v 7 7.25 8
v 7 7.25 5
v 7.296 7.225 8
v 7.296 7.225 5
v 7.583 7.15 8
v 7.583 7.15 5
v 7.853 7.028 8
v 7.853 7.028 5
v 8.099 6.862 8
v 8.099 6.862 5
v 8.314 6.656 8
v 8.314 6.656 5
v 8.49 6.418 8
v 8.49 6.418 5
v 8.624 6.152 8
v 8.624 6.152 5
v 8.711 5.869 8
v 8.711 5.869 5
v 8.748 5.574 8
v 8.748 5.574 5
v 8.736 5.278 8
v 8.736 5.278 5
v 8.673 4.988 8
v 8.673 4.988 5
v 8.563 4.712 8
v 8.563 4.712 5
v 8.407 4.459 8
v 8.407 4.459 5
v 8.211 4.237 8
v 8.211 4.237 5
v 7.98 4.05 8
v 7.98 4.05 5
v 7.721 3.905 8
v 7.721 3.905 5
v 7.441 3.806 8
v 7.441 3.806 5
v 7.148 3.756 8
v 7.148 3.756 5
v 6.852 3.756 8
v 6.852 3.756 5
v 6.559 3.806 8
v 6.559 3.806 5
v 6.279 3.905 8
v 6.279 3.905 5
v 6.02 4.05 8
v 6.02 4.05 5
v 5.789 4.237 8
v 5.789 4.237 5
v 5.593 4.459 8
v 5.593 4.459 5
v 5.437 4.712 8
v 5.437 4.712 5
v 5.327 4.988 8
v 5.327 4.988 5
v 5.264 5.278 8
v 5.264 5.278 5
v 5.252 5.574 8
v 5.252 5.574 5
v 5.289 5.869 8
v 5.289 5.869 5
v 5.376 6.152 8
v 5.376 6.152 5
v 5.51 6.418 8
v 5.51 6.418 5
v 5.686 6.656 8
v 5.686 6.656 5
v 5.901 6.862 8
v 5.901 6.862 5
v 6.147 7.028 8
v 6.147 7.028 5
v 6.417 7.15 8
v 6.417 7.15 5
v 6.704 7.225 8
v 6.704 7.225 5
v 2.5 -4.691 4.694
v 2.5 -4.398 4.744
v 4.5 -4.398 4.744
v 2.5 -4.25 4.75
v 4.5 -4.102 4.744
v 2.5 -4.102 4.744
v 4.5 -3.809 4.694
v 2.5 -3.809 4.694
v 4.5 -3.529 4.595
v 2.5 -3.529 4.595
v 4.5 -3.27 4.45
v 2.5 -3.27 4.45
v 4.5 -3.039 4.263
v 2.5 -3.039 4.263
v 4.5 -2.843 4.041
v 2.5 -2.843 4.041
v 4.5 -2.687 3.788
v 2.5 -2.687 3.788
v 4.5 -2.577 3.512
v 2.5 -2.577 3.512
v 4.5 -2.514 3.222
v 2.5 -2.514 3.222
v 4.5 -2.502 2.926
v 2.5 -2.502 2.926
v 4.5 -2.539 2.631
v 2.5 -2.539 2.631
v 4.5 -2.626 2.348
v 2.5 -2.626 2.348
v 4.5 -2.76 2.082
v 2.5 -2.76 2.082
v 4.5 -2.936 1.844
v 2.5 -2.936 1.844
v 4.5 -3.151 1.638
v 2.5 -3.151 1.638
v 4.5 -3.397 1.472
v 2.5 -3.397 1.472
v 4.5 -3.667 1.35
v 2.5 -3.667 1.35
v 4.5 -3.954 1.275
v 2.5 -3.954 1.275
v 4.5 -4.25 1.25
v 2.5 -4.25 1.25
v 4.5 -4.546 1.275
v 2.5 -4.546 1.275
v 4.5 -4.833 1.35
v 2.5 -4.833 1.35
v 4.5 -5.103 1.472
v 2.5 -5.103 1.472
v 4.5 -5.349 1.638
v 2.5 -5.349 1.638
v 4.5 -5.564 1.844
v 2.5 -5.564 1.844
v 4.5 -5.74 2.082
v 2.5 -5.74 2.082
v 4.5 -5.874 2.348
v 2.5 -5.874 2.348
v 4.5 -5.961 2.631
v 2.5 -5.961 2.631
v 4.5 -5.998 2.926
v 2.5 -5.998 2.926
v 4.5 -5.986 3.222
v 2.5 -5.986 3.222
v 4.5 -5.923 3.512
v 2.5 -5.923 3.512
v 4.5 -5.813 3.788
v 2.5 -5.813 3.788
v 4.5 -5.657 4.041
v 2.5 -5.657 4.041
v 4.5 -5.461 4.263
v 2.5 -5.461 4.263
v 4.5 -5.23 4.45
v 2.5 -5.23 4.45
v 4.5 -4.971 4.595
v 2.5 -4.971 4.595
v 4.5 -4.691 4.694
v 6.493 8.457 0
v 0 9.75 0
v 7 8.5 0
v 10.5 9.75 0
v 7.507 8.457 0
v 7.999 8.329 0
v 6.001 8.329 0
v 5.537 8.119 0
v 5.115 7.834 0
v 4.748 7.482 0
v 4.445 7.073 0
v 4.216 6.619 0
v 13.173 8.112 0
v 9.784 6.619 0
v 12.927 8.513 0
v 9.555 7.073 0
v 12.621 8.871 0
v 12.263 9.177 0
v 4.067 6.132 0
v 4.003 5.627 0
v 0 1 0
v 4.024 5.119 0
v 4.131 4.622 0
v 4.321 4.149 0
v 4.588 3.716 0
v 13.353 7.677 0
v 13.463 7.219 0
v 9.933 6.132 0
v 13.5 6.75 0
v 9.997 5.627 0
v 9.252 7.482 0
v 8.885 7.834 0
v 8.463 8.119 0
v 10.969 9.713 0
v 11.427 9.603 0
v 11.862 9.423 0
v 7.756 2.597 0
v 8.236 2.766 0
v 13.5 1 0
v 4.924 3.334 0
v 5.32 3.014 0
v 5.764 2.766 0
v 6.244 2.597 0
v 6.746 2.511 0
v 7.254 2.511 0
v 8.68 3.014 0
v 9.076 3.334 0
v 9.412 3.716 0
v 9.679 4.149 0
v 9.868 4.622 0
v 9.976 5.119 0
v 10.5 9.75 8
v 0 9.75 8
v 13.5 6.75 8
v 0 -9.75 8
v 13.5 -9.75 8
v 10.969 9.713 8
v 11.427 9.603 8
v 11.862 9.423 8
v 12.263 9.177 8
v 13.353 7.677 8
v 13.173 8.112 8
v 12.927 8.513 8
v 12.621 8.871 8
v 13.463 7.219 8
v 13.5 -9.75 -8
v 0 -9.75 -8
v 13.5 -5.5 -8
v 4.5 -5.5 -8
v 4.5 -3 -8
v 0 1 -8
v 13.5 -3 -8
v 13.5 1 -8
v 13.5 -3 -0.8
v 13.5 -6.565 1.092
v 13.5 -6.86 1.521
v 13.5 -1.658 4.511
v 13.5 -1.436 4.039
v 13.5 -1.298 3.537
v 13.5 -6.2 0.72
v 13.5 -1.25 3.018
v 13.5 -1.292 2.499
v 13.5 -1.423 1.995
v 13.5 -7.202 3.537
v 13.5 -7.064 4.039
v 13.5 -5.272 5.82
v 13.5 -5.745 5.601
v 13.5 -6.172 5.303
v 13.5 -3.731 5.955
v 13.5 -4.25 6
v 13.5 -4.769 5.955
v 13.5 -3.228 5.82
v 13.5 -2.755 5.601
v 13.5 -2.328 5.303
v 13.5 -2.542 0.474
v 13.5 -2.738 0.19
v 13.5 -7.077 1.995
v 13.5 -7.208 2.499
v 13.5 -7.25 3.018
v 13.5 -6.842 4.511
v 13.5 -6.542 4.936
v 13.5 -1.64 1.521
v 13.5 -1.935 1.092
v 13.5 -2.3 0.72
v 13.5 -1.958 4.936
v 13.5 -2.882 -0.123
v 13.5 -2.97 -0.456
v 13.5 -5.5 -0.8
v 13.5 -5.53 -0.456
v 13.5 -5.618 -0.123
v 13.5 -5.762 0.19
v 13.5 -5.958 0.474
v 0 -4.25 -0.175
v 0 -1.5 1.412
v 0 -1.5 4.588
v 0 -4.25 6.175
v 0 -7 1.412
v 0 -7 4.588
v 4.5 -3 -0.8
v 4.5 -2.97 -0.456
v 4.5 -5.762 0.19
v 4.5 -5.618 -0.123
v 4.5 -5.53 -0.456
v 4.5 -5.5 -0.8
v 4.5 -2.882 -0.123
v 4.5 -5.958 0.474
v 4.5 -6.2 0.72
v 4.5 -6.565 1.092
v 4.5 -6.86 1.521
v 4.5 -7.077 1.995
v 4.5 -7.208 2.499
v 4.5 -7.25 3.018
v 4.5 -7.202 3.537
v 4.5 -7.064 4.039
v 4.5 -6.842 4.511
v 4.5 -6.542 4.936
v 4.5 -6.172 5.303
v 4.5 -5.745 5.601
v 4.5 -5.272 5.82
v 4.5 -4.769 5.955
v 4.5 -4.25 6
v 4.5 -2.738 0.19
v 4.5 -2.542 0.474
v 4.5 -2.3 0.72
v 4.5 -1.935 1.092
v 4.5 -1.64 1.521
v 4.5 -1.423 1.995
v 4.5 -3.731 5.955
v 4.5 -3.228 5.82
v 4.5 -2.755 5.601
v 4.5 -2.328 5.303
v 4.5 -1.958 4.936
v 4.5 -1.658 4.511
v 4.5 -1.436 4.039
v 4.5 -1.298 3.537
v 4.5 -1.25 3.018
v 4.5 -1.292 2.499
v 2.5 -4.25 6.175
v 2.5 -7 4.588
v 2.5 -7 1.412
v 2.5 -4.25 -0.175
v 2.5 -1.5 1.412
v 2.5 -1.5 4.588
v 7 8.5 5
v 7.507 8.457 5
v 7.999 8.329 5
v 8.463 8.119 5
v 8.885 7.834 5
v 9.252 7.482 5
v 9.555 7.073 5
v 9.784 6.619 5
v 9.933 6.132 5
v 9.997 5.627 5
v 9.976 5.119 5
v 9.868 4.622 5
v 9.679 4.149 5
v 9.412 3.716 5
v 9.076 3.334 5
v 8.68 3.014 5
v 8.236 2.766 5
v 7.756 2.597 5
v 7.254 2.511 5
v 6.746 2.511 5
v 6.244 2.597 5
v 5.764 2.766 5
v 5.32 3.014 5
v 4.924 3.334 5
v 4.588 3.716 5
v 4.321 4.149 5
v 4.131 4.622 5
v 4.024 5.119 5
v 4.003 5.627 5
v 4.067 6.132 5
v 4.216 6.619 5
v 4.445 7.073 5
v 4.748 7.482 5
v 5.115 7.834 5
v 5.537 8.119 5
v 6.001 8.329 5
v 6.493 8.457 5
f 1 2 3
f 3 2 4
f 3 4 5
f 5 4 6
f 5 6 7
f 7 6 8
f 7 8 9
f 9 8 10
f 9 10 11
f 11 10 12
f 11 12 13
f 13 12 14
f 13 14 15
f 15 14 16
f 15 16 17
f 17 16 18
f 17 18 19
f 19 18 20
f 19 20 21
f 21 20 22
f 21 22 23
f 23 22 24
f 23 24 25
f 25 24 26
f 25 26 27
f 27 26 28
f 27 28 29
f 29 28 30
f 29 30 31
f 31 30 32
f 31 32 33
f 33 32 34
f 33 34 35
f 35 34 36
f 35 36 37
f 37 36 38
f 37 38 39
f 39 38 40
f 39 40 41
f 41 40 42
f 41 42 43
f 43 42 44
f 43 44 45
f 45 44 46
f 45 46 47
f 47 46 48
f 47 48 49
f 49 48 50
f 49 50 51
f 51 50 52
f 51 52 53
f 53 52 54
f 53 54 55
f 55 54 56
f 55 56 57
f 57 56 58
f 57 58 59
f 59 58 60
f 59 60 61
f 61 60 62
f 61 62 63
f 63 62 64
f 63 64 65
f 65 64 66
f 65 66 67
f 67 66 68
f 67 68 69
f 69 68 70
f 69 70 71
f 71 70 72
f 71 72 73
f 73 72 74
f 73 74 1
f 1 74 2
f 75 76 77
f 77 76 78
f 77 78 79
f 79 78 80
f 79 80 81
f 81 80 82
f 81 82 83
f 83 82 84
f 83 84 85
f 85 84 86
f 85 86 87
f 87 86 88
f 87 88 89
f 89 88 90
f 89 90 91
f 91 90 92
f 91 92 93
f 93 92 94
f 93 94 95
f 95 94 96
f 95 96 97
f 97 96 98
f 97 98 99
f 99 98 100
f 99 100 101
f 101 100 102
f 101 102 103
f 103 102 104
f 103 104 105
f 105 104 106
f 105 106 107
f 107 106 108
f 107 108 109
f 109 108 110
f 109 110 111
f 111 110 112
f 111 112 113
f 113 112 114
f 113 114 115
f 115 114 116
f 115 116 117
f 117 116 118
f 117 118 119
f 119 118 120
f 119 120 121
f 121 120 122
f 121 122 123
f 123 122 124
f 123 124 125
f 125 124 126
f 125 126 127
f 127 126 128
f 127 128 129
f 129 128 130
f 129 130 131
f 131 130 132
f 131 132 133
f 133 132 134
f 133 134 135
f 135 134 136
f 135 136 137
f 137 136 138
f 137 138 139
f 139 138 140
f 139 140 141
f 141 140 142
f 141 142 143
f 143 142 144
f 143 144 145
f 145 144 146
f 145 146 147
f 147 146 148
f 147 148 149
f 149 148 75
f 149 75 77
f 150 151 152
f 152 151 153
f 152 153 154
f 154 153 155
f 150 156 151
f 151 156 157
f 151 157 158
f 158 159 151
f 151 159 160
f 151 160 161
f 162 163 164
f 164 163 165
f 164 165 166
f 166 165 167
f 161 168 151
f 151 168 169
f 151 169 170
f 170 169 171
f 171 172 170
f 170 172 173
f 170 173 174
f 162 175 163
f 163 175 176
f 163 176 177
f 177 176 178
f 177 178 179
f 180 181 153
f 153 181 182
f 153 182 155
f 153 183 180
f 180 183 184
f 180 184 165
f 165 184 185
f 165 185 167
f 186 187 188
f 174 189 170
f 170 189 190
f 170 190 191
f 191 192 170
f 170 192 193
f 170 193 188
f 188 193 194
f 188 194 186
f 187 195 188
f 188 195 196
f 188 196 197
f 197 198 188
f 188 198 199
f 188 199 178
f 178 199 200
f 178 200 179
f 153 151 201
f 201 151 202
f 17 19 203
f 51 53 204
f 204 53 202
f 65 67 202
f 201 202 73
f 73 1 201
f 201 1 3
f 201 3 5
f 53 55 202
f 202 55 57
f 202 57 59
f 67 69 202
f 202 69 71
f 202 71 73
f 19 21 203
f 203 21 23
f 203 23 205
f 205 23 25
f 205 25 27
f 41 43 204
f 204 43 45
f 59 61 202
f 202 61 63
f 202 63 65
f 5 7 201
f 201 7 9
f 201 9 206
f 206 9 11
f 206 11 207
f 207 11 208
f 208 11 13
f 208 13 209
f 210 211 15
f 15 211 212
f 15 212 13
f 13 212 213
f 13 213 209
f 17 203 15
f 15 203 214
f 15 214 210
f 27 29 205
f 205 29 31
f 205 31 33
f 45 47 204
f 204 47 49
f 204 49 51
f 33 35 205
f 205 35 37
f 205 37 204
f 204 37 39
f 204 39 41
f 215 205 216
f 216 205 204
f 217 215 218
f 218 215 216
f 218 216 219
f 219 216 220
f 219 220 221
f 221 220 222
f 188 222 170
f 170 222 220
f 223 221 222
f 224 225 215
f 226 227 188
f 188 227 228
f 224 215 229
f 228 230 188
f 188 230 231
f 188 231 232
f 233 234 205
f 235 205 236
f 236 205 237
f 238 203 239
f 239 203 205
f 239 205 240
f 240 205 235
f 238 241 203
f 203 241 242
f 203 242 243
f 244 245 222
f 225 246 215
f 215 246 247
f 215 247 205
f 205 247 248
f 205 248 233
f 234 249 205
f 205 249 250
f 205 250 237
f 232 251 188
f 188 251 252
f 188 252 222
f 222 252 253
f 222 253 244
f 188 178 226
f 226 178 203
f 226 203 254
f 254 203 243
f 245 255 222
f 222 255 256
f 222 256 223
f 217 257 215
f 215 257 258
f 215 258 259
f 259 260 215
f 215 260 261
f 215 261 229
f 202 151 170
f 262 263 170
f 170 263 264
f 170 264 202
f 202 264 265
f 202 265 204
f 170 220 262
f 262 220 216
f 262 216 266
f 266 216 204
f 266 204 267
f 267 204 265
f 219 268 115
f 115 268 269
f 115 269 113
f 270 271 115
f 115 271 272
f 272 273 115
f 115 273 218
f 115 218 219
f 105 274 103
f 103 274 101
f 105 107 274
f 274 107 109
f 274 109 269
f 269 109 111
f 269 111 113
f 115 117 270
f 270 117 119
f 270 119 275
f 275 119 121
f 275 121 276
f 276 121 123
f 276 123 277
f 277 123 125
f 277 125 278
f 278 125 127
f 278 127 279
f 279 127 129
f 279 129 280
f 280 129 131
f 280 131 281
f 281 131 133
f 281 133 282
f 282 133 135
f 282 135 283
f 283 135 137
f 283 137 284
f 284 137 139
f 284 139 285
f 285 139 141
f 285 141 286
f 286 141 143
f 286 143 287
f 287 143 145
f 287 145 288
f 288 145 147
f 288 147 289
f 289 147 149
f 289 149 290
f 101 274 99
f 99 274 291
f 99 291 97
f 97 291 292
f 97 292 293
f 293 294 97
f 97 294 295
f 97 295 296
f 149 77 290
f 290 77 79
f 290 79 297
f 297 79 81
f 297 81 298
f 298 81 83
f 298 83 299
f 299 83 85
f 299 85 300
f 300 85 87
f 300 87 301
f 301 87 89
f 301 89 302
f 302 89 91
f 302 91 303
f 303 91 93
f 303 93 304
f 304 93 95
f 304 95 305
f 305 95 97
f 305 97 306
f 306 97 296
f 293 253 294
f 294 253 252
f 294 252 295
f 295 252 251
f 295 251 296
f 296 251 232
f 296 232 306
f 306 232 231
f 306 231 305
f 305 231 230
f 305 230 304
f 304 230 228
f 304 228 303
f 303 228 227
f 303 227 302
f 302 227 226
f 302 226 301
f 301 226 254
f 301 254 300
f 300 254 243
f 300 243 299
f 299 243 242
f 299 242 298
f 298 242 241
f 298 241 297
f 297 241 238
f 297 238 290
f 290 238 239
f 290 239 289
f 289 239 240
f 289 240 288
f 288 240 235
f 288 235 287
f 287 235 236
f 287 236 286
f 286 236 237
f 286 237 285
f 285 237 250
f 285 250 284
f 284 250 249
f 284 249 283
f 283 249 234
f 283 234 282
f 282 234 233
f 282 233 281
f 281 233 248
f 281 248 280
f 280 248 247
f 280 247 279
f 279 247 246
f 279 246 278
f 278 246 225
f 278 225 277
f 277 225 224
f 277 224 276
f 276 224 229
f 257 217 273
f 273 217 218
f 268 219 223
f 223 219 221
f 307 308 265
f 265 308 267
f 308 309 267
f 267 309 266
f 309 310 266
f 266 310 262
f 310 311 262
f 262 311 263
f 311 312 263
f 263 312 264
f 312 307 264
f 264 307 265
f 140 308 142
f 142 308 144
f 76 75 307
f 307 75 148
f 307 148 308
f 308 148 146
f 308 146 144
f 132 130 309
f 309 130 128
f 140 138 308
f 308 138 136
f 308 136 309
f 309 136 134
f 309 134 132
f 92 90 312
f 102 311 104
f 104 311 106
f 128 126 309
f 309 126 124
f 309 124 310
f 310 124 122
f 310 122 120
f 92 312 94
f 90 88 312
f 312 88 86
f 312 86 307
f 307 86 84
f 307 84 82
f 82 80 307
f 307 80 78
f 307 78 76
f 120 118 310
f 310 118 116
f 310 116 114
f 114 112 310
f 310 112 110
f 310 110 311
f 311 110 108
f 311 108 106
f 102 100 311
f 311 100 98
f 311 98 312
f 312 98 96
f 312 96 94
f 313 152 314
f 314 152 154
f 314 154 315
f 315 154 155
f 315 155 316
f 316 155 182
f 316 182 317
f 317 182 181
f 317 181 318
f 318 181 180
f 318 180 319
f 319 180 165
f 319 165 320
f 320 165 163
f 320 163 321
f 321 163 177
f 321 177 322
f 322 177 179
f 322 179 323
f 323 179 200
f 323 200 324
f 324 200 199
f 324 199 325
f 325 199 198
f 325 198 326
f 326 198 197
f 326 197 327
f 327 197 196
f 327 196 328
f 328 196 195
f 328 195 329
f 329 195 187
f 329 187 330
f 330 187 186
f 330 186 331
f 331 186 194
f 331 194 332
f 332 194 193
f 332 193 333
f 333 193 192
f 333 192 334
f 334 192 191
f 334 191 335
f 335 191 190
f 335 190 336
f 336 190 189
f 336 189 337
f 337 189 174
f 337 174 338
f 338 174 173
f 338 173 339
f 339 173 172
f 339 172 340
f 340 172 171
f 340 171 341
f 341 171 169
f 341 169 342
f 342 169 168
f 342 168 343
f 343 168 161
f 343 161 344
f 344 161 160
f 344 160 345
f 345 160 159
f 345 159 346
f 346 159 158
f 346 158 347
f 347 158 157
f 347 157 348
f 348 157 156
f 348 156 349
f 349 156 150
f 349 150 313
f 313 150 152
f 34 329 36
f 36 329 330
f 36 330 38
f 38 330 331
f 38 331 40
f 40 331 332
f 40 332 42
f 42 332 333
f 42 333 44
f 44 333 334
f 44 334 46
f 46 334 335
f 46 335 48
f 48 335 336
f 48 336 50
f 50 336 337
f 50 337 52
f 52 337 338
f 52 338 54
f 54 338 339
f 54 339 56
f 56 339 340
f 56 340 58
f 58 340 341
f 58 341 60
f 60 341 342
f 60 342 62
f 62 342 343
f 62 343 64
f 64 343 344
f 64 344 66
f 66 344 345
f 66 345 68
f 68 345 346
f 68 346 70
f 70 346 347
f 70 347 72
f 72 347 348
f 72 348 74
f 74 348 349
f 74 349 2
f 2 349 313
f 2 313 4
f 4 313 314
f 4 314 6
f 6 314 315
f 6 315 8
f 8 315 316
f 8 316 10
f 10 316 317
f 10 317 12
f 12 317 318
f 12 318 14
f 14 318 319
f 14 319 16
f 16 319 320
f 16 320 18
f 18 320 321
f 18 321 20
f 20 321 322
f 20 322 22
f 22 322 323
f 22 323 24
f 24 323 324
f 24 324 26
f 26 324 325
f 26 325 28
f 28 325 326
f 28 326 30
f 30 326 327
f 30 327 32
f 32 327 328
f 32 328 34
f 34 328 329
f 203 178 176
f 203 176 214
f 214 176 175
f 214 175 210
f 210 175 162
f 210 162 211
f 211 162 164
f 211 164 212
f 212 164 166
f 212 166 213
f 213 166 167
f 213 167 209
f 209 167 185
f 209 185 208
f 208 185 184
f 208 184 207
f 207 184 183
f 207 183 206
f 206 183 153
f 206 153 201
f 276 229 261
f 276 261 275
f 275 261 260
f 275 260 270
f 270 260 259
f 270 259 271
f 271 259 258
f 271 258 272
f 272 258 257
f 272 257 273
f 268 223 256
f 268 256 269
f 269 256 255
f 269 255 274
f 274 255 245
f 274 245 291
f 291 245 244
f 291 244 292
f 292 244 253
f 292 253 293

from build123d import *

# Parameters (mm, degrees)
BOSS_EXTRUDE1_DEPTH     = 13.5
SKETCH2_R               = 3
SKETCH2_W               = 11
SKETCH2_H               = 2.5
CUT_EXTRUDE1_DEPTH      = 9
CUT_EXTRUDE2_DEPTH      = 16.493950432
CUT_EXTRUDE2_DEPTH_BACK = 16.493950432
SKETCH3_R               = 1.75
CUT_EXTRUDE4_START      = -2.5
SKETCH4_R               = 1.75
CUT_EXTRUDE4_DEPTH      = 2.5
SKETCH5_R               = 1.75
CUT_EXTRUDE5_DEPTH      = 19.474644787
SKETCH6_R               = 3
SKETCH6_R_2             = 1.75
CUT_EXTRUDE6_DEPTH      = 5
FILLET1_R               = 3
FILLET2_R               = 2


with BuildPart() as part:
    # Sketch1 → Boss-Extrude1 (new body)
    with BuildSketch(Plane(origin=(0, 0, 0), x_dir=(0, 0, -1), z_dir=(1, 0, 0))):
        Polygon((-8, 9.75), (-8, -9.75), (8, -9.75), (8, 1), (0, 1), (0, 9.75), align=None)
    extrude(amount=BOSS_EXTRUDE1_DEPTH)

    # Sketch2 → Cut-Extrude1 (cut)
    with BuildSketch(Plane(origin=(13.5, 0, 0), x_dir=(0, 0, -1), z_dir=(1, 0, 0))):
        with Locations((-3, -4.25)):
            Circle(SKETCH2_R)
        with Locations((2.5, -4.25)):
            Rectangle(SKETCH2_W, SKETCH2_H)
    extrude(amount=-CUT_EXTRUDE1_DEPTH, mode=Mode.SUBTRACT)

    # Sketch3 → Cut-Extrude2 (cut, two sides: drawn at the far end of the back side and taken through both)
    with BuildSketch(Plane(origin=(4.5, 0, 0), x_dir=(0, 0, -1), z_dir=(1, 0, 0)).offset(-CUT_EXTRUDE2_DEPTH_BACK)):
        with Locations((-3, -4.25)):
            Circle(SKETCH3_R)
    extrude(amount=CUT_EXTRUDE2_DEPTH + CUT_EXTRUDE2_DEPTH_BACK, mode=Mode.SUBTRACT)

    # Sketch4 → Cut-Extrude4 (cut)
    with BuildSketch(Plane.ZY.offset(CUT_EXTRUDE4_START)):
        Polygon((6.175426481, -4.25), (4.58771324, -1.5), (1.41228676, -1.5), (-0.175426481, -4.25), (1.41228676, -7), (4.58771324, -7), align=None)
        with Locations(Location((3, -4.25, 0), (0, 0, 180))):
            Circle(SKETCH4_R, mode=Mode.SUBTRACT)
    extrude(amount=CUT_EXTRUDE4_DEPTH, mode=Mode.SUBTRACT)

    # Sketch5 → Cut-Extrude5 (cut, through all)
    with BuildSketch(Plane(origin=(0, 0, 0), x_dir=(-1, 0, 0), z_dir=(0, 0, -1))):
        with Locations(Location((-7, 5.5, 0), (0, 0, 90))):
            Circle(SKETCH5_R)
    extrude(amount=-CUT_EXTRUDE5_DEPTH, mode=Mode.SUBTRACT)

    # Sketch6 → Cut-Extrude6 (cut)
    with BuildSketch(Plane(origin=(0, 0, 0), x_dir=(-1, 0, 0), z_dir=(0, 0, -1))):
        with Locations(Location((-7, 5.5, 0), (0, 0, 90))):
            Circle(SKETCH6_R)
        with Locations(Location((-7, 5.5, 0), (0, 0, 90))):
            Circle(SKETCH6_R_2, mode=Mode.SUBTRACT)
    extrude(amount=-CUT_EXTRUDE6_DEPTH, mode=Mode.SUBTRACT)

    # Fillet1
    fillet1_edges = [part.edges().sort_by_distance(p)[0] for p in [
        (13.5, 9.75, 4),
    ]]
    fillet(fillet1_edges, radius=FILLET1_R)

    # Fillet2
    fillet2_edges = [part.edges().sort_by_distance(p)[0] for p in [
        (9, -3, 0.272821971),
        (9, -5.5, 0.272821971),
    ]]
    fillet(fillet2_edges, radius=FILLET2_R)


solid = part.part
